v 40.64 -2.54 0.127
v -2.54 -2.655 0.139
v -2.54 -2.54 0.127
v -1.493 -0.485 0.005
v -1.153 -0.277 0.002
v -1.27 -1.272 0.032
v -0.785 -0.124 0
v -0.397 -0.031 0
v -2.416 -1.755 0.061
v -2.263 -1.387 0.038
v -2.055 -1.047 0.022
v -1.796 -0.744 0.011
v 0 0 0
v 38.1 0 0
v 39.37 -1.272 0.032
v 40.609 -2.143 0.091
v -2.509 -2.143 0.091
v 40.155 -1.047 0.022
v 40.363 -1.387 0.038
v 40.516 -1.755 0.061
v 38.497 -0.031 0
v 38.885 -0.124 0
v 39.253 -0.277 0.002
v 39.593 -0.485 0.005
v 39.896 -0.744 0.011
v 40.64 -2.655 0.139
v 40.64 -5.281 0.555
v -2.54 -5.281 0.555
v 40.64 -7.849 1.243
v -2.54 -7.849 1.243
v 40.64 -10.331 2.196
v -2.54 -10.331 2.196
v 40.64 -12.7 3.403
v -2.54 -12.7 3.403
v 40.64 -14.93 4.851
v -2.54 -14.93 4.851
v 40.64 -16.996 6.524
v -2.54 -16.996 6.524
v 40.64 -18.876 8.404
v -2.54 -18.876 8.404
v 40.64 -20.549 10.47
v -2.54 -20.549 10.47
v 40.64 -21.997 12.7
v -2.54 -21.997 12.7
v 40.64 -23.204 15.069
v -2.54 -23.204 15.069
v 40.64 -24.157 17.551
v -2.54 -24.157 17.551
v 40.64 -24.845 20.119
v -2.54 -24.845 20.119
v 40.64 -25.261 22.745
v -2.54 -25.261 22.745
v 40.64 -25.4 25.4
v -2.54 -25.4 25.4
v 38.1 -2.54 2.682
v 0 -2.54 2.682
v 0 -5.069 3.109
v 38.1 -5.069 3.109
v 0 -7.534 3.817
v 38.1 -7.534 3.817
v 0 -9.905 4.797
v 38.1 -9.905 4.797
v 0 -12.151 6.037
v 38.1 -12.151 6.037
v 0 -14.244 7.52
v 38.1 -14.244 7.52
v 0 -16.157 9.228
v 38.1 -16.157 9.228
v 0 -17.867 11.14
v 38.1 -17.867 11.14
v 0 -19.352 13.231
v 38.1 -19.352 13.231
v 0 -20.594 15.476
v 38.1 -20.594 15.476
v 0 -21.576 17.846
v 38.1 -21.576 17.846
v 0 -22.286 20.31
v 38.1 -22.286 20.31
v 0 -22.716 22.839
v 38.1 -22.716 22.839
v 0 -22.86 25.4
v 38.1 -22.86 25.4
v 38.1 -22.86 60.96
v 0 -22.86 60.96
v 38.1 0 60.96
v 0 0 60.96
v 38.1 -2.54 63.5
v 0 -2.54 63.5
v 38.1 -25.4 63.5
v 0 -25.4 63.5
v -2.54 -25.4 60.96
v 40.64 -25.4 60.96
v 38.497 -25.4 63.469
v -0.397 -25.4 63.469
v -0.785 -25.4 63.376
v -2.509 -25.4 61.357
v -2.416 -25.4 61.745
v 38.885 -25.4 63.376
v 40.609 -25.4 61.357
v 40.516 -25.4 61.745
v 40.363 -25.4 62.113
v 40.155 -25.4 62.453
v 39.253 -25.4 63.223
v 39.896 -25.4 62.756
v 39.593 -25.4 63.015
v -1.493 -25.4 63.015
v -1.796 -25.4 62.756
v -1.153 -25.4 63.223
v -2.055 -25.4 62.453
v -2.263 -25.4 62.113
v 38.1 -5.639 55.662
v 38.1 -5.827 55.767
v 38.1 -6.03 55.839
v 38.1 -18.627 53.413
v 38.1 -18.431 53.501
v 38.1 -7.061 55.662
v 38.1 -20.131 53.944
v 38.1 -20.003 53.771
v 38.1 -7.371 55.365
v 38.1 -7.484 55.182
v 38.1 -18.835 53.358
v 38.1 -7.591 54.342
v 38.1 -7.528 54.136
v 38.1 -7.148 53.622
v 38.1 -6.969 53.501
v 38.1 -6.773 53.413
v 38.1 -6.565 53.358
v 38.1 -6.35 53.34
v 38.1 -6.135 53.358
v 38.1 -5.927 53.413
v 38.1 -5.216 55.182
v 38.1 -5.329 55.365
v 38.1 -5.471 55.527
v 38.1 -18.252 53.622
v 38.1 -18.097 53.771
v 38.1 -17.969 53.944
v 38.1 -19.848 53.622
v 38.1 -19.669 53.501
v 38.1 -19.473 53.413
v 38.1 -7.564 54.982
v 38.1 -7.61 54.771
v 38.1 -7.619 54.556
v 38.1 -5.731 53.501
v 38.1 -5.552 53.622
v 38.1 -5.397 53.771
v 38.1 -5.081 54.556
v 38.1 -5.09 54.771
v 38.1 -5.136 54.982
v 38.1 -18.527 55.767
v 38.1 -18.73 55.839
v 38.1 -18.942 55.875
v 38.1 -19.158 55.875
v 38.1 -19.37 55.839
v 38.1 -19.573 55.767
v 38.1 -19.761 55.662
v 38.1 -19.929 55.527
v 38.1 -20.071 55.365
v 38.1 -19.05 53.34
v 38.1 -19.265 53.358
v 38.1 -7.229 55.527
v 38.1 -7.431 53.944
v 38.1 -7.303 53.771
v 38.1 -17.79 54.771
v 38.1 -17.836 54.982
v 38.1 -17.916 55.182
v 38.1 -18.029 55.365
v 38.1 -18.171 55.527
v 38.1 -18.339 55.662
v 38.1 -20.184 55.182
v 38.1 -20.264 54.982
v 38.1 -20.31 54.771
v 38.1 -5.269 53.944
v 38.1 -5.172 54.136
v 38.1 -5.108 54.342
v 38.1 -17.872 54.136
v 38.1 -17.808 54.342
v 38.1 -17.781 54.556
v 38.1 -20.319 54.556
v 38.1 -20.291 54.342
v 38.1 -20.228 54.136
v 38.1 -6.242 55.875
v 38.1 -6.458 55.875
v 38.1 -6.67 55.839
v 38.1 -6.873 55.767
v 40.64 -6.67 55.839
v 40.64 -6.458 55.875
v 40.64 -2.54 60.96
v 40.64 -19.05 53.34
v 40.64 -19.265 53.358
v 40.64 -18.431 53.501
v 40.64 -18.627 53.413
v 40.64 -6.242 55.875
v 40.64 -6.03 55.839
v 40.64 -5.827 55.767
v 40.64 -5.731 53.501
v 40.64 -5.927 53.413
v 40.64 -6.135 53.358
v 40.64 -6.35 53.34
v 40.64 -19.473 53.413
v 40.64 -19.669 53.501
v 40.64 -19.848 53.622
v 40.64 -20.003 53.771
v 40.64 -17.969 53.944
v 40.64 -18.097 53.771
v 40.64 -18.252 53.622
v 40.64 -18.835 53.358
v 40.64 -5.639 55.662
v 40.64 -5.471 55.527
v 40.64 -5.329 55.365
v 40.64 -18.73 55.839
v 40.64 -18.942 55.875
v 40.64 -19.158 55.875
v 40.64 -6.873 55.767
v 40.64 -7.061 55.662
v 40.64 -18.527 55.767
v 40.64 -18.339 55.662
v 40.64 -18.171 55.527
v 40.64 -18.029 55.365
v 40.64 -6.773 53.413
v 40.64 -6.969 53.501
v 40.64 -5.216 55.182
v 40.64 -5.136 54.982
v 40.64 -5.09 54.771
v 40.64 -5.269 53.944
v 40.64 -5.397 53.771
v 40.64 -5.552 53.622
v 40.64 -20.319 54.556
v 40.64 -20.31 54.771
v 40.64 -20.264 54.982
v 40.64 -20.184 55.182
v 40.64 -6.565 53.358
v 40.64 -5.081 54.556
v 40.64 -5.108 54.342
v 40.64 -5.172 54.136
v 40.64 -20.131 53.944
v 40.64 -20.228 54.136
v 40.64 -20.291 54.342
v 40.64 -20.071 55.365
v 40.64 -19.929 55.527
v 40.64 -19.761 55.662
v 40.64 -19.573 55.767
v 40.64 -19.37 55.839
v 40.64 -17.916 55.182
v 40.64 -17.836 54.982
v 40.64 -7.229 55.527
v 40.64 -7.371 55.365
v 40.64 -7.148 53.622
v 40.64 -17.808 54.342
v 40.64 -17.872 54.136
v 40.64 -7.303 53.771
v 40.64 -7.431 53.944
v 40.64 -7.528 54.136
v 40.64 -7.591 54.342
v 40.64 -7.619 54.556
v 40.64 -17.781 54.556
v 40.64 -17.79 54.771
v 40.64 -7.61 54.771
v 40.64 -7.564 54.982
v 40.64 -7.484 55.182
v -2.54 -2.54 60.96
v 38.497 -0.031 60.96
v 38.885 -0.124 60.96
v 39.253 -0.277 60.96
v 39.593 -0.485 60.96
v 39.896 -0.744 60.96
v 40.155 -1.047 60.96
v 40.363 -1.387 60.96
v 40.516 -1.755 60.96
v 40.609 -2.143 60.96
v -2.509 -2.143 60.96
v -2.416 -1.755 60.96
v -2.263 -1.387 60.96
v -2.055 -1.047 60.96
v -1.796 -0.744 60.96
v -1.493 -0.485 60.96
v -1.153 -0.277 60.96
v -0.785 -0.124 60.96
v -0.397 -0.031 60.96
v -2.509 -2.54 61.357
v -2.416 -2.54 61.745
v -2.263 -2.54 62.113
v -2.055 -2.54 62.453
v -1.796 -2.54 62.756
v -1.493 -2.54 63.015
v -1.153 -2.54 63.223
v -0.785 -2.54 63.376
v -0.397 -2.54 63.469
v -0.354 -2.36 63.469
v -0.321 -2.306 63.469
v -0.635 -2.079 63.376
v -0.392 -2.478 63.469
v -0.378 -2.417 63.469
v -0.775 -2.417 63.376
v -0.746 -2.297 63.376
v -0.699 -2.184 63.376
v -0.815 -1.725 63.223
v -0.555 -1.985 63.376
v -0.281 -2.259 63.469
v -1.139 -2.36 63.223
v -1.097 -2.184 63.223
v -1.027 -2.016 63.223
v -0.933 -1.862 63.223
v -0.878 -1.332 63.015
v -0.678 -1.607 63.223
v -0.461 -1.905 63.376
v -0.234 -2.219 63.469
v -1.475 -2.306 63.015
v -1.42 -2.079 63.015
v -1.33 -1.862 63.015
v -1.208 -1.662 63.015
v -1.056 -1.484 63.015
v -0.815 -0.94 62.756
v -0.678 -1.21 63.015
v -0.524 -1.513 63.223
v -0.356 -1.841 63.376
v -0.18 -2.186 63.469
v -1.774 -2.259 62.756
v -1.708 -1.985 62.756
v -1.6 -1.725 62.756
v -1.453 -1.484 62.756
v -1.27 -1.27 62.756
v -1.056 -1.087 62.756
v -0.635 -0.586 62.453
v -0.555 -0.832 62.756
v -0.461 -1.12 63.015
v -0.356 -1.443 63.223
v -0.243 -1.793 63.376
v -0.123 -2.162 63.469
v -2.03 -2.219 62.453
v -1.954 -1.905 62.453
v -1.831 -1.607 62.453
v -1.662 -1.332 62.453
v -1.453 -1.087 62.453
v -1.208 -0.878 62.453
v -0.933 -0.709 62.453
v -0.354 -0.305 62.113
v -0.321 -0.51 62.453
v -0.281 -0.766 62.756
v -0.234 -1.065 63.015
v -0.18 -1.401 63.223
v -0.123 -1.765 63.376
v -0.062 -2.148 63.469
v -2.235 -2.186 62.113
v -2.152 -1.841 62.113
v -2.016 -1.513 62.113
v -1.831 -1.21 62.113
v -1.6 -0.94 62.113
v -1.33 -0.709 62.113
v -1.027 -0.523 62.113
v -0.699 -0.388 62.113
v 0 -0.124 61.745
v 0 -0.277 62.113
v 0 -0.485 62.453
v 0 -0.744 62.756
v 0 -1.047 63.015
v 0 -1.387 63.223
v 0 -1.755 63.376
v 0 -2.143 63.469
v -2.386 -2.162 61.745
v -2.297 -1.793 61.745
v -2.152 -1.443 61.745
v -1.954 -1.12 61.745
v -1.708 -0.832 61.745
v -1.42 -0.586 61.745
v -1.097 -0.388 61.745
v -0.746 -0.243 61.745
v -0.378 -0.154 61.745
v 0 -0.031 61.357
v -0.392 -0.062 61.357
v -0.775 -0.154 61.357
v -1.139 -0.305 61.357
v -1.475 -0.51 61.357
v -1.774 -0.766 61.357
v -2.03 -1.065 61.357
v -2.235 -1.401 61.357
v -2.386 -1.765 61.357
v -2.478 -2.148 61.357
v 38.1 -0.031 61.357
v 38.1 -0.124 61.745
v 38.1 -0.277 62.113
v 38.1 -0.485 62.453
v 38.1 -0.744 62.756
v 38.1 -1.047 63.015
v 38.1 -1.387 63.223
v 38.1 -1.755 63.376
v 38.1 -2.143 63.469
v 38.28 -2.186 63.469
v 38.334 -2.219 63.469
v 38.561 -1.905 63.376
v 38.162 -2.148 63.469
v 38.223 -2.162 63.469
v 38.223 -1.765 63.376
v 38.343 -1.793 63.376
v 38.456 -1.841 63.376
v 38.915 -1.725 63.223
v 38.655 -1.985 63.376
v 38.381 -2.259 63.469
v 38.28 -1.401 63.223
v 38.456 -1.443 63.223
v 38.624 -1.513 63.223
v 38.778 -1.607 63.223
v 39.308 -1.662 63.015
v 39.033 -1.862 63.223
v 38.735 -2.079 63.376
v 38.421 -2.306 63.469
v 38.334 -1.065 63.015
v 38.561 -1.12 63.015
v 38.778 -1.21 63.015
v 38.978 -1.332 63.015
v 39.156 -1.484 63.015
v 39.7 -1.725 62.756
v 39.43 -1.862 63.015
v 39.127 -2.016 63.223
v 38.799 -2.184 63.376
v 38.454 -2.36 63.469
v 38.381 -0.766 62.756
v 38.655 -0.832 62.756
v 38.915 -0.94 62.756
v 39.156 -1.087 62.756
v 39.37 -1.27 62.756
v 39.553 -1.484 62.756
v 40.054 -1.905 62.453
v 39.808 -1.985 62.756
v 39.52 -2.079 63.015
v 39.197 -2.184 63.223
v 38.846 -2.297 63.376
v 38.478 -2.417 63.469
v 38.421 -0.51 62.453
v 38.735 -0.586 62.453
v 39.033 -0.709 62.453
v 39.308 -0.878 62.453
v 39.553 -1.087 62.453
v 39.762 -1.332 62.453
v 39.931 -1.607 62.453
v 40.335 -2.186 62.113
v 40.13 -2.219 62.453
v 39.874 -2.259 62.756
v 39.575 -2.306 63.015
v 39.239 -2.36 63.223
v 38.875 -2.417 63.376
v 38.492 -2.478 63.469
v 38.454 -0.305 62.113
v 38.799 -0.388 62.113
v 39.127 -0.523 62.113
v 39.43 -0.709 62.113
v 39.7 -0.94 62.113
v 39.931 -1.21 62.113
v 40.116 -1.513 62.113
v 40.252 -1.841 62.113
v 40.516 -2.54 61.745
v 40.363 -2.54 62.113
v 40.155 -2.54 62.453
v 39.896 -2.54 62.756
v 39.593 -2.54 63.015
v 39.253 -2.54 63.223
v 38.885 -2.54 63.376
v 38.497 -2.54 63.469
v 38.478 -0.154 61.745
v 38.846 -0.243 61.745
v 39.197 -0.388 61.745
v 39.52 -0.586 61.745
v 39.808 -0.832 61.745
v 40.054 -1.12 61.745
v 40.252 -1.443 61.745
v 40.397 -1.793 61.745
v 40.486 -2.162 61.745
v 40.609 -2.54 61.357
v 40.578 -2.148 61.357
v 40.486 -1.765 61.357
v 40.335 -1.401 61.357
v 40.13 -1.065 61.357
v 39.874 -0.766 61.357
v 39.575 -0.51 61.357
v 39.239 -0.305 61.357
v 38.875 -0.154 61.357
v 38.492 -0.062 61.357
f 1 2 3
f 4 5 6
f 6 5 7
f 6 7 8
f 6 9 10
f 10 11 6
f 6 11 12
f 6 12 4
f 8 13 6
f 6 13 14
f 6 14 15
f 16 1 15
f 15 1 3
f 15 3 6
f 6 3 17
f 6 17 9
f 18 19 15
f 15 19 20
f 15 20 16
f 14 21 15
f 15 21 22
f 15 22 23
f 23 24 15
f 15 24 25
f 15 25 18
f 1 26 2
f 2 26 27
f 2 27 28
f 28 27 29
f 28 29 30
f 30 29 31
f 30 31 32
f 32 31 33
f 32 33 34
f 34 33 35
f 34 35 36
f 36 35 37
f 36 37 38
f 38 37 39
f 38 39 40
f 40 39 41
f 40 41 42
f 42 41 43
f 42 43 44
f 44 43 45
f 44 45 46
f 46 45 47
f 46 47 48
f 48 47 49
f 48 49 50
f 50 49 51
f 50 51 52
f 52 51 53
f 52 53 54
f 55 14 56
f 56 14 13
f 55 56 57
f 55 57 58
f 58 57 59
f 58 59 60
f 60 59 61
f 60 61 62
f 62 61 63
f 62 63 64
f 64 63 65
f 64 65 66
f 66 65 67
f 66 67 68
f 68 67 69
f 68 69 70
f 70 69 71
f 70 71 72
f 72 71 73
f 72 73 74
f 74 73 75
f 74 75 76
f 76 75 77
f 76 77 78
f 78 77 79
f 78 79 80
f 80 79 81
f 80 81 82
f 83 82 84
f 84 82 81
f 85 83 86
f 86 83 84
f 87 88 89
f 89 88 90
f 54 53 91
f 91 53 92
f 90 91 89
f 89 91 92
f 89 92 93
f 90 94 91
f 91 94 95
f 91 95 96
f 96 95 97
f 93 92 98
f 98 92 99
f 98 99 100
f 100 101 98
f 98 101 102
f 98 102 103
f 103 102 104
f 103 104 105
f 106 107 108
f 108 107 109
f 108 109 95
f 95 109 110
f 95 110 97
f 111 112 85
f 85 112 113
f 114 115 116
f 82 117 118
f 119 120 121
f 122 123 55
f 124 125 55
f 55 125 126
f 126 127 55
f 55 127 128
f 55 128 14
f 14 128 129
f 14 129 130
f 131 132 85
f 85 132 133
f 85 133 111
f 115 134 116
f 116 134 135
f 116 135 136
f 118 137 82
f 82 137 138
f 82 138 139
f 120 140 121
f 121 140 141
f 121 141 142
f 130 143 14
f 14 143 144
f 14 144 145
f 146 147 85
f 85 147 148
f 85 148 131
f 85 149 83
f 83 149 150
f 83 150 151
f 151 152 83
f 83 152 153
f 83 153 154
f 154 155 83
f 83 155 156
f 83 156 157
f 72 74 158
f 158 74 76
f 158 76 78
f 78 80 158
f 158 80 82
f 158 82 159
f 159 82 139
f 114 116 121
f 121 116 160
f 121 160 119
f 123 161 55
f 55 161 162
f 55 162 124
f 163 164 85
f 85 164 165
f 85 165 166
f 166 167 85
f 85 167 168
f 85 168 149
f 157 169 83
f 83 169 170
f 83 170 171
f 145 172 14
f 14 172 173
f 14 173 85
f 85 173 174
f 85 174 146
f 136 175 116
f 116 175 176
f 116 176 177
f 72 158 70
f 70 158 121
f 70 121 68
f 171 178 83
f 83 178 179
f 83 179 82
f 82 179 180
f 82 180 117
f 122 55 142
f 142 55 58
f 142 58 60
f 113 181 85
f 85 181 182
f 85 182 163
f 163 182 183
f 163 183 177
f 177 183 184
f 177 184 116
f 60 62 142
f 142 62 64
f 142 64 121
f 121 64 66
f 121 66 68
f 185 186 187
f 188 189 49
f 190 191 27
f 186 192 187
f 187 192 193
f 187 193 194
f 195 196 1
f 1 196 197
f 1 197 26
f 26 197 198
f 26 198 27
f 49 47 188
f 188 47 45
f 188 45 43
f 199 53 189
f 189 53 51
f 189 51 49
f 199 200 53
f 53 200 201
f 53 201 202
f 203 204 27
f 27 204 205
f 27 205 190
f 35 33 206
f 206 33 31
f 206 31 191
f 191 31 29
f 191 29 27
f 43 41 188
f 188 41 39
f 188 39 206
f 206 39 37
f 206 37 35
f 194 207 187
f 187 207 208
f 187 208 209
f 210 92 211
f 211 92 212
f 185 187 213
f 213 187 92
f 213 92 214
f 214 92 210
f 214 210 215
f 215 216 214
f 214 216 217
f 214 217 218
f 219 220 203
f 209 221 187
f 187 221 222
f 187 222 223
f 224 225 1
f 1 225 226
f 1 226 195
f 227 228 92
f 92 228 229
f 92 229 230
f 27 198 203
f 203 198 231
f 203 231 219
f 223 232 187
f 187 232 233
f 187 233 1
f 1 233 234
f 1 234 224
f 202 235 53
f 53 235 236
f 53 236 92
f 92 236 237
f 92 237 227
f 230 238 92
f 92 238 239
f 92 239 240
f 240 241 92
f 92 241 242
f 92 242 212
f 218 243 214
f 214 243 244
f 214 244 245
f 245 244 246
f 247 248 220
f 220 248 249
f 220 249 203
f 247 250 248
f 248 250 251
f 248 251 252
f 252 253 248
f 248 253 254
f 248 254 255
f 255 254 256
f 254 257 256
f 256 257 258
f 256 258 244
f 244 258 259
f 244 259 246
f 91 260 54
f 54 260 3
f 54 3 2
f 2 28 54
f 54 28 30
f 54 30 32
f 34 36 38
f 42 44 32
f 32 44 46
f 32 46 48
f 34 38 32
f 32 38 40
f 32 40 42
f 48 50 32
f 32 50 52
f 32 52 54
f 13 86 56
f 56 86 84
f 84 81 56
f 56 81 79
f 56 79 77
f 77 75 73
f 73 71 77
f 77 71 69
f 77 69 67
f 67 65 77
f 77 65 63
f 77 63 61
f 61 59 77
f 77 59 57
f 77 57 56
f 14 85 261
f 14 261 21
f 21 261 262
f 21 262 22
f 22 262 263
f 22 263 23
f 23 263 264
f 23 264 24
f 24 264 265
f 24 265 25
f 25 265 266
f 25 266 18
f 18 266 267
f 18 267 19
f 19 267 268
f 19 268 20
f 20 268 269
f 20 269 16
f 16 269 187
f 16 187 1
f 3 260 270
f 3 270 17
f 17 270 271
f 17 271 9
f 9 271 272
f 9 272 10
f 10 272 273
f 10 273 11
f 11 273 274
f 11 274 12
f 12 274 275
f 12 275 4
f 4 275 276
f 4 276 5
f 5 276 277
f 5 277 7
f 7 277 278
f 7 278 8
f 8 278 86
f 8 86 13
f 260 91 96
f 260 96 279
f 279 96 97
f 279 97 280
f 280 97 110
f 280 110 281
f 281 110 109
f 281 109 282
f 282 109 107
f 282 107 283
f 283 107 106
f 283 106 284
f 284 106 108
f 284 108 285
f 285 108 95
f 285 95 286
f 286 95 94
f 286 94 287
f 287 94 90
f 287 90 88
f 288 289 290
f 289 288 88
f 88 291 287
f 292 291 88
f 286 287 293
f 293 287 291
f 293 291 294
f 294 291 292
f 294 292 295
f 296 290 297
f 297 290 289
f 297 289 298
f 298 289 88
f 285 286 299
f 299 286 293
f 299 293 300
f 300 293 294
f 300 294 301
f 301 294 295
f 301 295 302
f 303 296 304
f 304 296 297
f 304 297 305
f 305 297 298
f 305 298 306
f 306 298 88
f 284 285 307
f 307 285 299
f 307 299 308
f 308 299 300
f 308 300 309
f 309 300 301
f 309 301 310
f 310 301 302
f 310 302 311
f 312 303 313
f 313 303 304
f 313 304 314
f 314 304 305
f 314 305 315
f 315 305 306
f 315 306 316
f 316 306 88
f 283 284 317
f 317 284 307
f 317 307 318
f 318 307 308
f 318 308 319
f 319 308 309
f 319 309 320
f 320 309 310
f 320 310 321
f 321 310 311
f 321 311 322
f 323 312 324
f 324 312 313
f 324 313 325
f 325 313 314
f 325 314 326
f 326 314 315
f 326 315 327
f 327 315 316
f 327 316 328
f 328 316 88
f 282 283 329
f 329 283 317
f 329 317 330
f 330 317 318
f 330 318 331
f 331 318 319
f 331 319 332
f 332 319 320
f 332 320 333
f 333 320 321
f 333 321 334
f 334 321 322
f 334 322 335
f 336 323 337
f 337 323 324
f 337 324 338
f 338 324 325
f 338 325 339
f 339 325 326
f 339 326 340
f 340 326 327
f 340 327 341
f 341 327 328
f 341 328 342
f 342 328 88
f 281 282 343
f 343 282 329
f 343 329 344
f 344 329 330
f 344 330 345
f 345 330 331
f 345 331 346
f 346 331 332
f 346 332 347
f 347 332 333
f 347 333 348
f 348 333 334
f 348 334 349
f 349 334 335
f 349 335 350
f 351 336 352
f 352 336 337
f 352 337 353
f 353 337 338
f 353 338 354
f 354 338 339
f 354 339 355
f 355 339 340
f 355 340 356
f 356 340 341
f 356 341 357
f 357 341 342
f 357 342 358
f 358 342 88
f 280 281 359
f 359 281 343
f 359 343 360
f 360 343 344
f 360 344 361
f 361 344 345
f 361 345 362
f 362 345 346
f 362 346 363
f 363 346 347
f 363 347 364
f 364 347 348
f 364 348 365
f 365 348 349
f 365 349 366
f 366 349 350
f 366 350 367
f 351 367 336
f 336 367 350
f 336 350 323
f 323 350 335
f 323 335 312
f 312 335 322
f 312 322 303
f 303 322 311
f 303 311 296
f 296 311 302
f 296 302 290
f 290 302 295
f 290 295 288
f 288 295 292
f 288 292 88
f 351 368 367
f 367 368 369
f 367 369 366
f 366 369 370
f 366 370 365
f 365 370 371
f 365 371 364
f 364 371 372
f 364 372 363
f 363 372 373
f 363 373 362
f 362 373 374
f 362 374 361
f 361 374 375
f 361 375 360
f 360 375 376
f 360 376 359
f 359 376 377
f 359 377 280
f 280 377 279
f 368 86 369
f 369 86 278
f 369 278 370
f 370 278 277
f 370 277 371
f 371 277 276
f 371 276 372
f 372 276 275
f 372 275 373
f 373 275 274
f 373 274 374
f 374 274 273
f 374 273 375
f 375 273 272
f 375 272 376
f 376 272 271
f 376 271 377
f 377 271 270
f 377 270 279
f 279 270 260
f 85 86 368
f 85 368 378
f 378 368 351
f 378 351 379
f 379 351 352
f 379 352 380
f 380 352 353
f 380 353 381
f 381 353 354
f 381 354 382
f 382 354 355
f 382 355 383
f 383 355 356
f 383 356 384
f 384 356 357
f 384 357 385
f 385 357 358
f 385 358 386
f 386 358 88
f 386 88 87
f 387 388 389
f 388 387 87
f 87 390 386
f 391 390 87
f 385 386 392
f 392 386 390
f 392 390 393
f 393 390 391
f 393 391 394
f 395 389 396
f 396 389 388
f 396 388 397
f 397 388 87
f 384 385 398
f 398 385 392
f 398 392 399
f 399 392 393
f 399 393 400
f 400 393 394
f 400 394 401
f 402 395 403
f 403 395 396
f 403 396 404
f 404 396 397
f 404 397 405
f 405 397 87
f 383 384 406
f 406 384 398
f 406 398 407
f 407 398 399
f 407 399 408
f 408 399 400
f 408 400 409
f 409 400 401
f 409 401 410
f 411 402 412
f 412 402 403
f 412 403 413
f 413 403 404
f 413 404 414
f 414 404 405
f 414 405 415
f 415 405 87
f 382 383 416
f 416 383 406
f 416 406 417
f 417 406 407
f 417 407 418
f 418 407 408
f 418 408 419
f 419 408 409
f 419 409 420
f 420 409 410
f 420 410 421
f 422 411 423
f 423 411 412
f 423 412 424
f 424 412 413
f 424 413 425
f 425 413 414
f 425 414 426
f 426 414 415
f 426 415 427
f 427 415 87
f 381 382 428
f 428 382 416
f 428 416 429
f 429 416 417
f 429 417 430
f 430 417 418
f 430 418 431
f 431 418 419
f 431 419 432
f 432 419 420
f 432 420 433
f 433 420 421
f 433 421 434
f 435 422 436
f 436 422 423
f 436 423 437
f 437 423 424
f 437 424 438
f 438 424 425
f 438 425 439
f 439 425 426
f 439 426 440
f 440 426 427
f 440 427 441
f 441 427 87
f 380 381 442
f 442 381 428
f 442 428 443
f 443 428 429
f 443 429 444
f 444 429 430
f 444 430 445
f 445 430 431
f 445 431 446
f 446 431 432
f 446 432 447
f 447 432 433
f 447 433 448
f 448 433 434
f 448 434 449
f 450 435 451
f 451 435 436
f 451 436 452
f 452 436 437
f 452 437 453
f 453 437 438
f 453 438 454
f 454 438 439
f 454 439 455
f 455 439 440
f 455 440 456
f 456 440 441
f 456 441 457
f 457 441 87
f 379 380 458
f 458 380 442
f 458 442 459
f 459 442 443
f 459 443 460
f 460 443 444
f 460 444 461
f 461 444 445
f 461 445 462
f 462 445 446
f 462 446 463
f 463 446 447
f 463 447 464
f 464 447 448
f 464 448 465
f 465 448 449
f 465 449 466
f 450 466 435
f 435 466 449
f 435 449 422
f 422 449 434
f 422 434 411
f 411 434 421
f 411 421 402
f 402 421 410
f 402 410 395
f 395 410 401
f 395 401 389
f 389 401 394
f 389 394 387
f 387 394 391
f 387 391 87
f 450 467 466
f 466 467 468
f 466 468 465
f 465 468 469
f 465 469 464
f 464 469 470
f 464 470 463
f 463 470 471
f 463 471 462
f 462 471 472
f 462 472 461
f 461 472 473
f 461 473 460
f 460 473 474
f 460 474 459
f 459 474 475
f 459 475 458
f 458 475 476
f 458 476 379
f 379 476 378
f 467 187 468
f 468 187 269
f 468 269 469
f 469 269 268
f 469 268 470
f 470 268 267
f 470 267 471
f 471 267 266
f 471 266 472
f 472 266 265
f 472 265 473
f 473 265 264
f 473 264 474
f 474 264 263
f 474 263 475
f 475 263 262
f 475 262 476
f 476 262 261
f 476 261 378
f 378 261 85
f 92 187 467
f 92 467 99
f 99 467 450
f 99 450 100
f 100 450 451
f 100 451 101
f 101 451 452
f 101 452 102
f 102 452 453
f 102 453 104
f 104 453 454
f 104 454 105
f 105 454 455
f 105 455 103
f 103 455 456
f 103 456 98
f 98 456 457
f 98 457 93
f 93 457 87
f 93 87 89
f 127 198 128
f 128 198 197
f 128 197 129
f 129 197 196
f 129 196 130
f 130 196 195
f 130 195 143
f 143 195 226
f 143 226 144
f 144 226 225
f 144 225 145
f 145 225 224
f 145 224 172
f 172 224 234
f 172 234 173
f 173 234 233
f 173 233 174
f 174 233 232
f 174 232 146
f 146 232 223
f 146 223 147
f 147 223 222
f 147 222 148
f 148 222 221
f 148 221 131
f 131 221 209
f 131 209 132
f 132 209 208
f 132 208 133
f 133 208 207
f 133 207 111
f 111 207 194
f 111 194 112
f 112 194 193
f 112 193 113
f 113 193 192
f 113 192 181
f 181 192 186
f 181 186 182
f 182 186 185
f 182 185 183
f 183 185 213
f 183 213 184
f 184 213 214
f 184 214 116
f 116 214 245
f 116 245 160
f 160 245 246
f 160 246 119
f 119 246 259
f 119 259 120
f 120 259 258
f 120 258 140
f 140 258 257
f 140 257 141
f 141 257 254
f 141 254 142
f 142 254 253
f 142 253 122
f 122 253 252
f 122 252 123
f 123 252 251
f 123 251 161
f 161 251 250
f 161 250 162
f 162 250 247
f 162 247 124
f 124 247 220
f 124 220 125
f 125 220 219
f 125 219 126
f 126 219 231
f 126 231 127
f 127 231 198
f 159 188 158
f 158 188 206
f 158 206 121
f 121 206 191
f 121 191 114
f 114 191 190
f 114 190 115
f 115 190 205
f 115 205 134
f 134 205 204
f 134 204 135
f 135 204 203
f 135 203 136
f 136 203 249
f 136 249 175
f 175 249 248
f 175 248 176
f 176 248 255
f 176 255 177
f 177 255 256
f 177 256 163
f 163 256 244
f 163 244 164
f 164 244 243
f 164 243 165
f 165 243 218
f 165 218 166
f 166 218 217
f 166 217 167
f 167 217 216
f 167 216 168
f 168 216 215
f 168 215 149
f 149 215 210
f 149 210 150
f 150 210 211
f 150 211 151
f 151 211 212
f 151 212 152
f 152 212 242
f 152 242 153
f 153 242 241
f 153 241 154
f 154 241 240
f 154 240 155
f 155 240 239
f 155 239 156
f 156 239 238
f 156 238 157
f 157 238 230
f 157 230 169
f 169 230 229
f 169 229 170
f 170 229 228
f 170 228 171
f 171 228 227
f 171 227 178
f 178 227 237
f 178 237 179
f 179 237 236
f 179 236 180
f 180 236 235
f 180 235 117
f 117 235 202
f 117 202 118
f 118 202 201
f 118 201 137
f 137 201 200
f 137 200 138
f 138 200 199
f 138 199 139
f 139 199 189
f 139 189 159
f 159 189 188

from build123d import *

# Parameters (mm, degrees)
BOSS_EXTRUDE2_DEPTH = 38.1
BOSS_EXTRUDE3_DEPTH = 2.54
BOSS_EXTRUDE5_START = 2.54
BOSS_EXTRUDE5_DEPTH = 2.54
FILLET1_R           = 2.54
FILLET3_R           = 2.54
FILLET5_R           = 2.54
SKETCH5_R           = 1.27
CUT_EXTRUDE1_DEPTH  = 2.54


with BuildPart() as part:
    # Sketch1 → Boss-Extrude2 (new body)
    with BuildSketch(Plane(origin=(0, 0, 0), x_dir=(0, 0, -1), z_dir=(1, 0, 0))):
        with BuildLine():
            Line((-60.96, 0), (-63.5, 0))
            Line((-63.5, 0), (-63.5, -25.4))
            Line((-63.5, -25.4), (-25.4, -25.4))
            ThreePointArc((-25.4, -25.4), (-7.439487758, -17.960512242), (0, 0))
            Line((0, 0), (-2.681549349, -2.54))
            ThreePointArc((-2.681549349, -2.54), (-10.16, -17.038837989), (-25.4, -22.86))
            Line((-25.4, -22.86), (-60.96, -22.86))
            Line((-60.96, -22.86), (-60.96, 0))
        make_face()
    extrude(amount=BOSS_EXTRUDE2_DEPTH)

    # Sketch2 → Boss-Extrude3 (add)
    with BuildSketch(Plane(origin=(38.1, 0, 0), x_dir=(0, 0, -1), z_dir=(1, 0, 0))):
        with BuildLine():
            Line((-63.5, 0), (0, 0))
            ThreePointArc((0, 0), (-7.439487758, -17.960512242), (-25.4, -25.4))
            Line((-25.4, -25.4), (-63.5, -25.4))
            Line((-63.5, -25.4), (-63.5, 0))
        make_face()
    extrude(amount=BOSS_EXTRUDE3_DEPTH)

    # Sketch3 → Boss-Extrude5 (add)
    with BuildSketch(Plane.ZY.offset(BOSS_EXTRUDE5_START)):
        with BuildLine():
            Line((2.681549349, -2.54), (0, 0))
            ThreePointArc((0, 0), (7.439487758, -17.960512242), (25.4, -25.4))
            Line((25.4, -25.4), (63.5, -25.4))
            Line((63.5, -25.4), (63.5, 0))
            Line((63.5, 0), (60.96, 0))
            Line((60.96, 0), (60.96, -22.86))
            Line((60.96, -22.86), (25.4, -22.86))
            ThreePointArc((25.4, -22.86), (10.16, -17.038837989), (2.681549349, -2.54))
        make_face()
        with BuildLine():
            Line((60.96, 0), (0, 0))
            Line((0, 0), (2.681549349, -2.54))
            ThreePointArc((2.681549349, -2.54), (10.16, -17.038837989), (25.4, -22.86))
            Line((25.4, -22.86), (60.96, -22.86))
            Line((60.96, -22.86), (60.96, 0))
        make_face()
    extrude(amount=-BOSS_EXTRUDE5_DEPTH)

    # Fillet1
    fillet1_edges = [part.edges().sort_by_distance(p)[0] for p in [
        (40.64, 0, 31.75),
    ]]
    fillet(fillet1_edges, radius=FILLET1_R - 0.0001)  # a hair under: the kernel refuses the full size

    # Fillet3
    fillet3_edges = [part.edges().sort_by_distance(p)[0] for p in [
        (-2.54, 0, 31.75),
    ]]
    fillet(fillet3_edges, radius=FILLET3_R - 0.0001)  # a hair under: the kernel refuses the full size

    # Fillet5
    fillet5_edges = [part.edges().sort_by_distance(p)[0] for p in [
        (40.64, -13.96995, 63.5),
        (39.896080514, -0.743919486, 63.5),
        (-2.54, -13.96995, 63.5),
        (-1.796080514, -0.743919486, 63.5),
        (19.05, 0, 63.5),
    ]]
    fillet(fillet5_edges, radius=FILLET5_R - 0.0001)  # a hair under: the kernel refuses the full size

    # Sketch5 → Cut-Extrude1 (cut)
    with BuildSketch(Plane(origin=(40.64, 0, 0), x_dir=(0, 0, -1), z_dir=(1, 0, 0))):
        with Locations((-54.61, -6.35)):
            Circle(SKETCH5_R)
        with Locations((-54.61, -19.05)):
            Circle(SKETCH5_R)
    extrude(amount=-CUT_EXTRUDE1_DEPTH, mode=Mode.SUBTRACT)


solid = part.part
